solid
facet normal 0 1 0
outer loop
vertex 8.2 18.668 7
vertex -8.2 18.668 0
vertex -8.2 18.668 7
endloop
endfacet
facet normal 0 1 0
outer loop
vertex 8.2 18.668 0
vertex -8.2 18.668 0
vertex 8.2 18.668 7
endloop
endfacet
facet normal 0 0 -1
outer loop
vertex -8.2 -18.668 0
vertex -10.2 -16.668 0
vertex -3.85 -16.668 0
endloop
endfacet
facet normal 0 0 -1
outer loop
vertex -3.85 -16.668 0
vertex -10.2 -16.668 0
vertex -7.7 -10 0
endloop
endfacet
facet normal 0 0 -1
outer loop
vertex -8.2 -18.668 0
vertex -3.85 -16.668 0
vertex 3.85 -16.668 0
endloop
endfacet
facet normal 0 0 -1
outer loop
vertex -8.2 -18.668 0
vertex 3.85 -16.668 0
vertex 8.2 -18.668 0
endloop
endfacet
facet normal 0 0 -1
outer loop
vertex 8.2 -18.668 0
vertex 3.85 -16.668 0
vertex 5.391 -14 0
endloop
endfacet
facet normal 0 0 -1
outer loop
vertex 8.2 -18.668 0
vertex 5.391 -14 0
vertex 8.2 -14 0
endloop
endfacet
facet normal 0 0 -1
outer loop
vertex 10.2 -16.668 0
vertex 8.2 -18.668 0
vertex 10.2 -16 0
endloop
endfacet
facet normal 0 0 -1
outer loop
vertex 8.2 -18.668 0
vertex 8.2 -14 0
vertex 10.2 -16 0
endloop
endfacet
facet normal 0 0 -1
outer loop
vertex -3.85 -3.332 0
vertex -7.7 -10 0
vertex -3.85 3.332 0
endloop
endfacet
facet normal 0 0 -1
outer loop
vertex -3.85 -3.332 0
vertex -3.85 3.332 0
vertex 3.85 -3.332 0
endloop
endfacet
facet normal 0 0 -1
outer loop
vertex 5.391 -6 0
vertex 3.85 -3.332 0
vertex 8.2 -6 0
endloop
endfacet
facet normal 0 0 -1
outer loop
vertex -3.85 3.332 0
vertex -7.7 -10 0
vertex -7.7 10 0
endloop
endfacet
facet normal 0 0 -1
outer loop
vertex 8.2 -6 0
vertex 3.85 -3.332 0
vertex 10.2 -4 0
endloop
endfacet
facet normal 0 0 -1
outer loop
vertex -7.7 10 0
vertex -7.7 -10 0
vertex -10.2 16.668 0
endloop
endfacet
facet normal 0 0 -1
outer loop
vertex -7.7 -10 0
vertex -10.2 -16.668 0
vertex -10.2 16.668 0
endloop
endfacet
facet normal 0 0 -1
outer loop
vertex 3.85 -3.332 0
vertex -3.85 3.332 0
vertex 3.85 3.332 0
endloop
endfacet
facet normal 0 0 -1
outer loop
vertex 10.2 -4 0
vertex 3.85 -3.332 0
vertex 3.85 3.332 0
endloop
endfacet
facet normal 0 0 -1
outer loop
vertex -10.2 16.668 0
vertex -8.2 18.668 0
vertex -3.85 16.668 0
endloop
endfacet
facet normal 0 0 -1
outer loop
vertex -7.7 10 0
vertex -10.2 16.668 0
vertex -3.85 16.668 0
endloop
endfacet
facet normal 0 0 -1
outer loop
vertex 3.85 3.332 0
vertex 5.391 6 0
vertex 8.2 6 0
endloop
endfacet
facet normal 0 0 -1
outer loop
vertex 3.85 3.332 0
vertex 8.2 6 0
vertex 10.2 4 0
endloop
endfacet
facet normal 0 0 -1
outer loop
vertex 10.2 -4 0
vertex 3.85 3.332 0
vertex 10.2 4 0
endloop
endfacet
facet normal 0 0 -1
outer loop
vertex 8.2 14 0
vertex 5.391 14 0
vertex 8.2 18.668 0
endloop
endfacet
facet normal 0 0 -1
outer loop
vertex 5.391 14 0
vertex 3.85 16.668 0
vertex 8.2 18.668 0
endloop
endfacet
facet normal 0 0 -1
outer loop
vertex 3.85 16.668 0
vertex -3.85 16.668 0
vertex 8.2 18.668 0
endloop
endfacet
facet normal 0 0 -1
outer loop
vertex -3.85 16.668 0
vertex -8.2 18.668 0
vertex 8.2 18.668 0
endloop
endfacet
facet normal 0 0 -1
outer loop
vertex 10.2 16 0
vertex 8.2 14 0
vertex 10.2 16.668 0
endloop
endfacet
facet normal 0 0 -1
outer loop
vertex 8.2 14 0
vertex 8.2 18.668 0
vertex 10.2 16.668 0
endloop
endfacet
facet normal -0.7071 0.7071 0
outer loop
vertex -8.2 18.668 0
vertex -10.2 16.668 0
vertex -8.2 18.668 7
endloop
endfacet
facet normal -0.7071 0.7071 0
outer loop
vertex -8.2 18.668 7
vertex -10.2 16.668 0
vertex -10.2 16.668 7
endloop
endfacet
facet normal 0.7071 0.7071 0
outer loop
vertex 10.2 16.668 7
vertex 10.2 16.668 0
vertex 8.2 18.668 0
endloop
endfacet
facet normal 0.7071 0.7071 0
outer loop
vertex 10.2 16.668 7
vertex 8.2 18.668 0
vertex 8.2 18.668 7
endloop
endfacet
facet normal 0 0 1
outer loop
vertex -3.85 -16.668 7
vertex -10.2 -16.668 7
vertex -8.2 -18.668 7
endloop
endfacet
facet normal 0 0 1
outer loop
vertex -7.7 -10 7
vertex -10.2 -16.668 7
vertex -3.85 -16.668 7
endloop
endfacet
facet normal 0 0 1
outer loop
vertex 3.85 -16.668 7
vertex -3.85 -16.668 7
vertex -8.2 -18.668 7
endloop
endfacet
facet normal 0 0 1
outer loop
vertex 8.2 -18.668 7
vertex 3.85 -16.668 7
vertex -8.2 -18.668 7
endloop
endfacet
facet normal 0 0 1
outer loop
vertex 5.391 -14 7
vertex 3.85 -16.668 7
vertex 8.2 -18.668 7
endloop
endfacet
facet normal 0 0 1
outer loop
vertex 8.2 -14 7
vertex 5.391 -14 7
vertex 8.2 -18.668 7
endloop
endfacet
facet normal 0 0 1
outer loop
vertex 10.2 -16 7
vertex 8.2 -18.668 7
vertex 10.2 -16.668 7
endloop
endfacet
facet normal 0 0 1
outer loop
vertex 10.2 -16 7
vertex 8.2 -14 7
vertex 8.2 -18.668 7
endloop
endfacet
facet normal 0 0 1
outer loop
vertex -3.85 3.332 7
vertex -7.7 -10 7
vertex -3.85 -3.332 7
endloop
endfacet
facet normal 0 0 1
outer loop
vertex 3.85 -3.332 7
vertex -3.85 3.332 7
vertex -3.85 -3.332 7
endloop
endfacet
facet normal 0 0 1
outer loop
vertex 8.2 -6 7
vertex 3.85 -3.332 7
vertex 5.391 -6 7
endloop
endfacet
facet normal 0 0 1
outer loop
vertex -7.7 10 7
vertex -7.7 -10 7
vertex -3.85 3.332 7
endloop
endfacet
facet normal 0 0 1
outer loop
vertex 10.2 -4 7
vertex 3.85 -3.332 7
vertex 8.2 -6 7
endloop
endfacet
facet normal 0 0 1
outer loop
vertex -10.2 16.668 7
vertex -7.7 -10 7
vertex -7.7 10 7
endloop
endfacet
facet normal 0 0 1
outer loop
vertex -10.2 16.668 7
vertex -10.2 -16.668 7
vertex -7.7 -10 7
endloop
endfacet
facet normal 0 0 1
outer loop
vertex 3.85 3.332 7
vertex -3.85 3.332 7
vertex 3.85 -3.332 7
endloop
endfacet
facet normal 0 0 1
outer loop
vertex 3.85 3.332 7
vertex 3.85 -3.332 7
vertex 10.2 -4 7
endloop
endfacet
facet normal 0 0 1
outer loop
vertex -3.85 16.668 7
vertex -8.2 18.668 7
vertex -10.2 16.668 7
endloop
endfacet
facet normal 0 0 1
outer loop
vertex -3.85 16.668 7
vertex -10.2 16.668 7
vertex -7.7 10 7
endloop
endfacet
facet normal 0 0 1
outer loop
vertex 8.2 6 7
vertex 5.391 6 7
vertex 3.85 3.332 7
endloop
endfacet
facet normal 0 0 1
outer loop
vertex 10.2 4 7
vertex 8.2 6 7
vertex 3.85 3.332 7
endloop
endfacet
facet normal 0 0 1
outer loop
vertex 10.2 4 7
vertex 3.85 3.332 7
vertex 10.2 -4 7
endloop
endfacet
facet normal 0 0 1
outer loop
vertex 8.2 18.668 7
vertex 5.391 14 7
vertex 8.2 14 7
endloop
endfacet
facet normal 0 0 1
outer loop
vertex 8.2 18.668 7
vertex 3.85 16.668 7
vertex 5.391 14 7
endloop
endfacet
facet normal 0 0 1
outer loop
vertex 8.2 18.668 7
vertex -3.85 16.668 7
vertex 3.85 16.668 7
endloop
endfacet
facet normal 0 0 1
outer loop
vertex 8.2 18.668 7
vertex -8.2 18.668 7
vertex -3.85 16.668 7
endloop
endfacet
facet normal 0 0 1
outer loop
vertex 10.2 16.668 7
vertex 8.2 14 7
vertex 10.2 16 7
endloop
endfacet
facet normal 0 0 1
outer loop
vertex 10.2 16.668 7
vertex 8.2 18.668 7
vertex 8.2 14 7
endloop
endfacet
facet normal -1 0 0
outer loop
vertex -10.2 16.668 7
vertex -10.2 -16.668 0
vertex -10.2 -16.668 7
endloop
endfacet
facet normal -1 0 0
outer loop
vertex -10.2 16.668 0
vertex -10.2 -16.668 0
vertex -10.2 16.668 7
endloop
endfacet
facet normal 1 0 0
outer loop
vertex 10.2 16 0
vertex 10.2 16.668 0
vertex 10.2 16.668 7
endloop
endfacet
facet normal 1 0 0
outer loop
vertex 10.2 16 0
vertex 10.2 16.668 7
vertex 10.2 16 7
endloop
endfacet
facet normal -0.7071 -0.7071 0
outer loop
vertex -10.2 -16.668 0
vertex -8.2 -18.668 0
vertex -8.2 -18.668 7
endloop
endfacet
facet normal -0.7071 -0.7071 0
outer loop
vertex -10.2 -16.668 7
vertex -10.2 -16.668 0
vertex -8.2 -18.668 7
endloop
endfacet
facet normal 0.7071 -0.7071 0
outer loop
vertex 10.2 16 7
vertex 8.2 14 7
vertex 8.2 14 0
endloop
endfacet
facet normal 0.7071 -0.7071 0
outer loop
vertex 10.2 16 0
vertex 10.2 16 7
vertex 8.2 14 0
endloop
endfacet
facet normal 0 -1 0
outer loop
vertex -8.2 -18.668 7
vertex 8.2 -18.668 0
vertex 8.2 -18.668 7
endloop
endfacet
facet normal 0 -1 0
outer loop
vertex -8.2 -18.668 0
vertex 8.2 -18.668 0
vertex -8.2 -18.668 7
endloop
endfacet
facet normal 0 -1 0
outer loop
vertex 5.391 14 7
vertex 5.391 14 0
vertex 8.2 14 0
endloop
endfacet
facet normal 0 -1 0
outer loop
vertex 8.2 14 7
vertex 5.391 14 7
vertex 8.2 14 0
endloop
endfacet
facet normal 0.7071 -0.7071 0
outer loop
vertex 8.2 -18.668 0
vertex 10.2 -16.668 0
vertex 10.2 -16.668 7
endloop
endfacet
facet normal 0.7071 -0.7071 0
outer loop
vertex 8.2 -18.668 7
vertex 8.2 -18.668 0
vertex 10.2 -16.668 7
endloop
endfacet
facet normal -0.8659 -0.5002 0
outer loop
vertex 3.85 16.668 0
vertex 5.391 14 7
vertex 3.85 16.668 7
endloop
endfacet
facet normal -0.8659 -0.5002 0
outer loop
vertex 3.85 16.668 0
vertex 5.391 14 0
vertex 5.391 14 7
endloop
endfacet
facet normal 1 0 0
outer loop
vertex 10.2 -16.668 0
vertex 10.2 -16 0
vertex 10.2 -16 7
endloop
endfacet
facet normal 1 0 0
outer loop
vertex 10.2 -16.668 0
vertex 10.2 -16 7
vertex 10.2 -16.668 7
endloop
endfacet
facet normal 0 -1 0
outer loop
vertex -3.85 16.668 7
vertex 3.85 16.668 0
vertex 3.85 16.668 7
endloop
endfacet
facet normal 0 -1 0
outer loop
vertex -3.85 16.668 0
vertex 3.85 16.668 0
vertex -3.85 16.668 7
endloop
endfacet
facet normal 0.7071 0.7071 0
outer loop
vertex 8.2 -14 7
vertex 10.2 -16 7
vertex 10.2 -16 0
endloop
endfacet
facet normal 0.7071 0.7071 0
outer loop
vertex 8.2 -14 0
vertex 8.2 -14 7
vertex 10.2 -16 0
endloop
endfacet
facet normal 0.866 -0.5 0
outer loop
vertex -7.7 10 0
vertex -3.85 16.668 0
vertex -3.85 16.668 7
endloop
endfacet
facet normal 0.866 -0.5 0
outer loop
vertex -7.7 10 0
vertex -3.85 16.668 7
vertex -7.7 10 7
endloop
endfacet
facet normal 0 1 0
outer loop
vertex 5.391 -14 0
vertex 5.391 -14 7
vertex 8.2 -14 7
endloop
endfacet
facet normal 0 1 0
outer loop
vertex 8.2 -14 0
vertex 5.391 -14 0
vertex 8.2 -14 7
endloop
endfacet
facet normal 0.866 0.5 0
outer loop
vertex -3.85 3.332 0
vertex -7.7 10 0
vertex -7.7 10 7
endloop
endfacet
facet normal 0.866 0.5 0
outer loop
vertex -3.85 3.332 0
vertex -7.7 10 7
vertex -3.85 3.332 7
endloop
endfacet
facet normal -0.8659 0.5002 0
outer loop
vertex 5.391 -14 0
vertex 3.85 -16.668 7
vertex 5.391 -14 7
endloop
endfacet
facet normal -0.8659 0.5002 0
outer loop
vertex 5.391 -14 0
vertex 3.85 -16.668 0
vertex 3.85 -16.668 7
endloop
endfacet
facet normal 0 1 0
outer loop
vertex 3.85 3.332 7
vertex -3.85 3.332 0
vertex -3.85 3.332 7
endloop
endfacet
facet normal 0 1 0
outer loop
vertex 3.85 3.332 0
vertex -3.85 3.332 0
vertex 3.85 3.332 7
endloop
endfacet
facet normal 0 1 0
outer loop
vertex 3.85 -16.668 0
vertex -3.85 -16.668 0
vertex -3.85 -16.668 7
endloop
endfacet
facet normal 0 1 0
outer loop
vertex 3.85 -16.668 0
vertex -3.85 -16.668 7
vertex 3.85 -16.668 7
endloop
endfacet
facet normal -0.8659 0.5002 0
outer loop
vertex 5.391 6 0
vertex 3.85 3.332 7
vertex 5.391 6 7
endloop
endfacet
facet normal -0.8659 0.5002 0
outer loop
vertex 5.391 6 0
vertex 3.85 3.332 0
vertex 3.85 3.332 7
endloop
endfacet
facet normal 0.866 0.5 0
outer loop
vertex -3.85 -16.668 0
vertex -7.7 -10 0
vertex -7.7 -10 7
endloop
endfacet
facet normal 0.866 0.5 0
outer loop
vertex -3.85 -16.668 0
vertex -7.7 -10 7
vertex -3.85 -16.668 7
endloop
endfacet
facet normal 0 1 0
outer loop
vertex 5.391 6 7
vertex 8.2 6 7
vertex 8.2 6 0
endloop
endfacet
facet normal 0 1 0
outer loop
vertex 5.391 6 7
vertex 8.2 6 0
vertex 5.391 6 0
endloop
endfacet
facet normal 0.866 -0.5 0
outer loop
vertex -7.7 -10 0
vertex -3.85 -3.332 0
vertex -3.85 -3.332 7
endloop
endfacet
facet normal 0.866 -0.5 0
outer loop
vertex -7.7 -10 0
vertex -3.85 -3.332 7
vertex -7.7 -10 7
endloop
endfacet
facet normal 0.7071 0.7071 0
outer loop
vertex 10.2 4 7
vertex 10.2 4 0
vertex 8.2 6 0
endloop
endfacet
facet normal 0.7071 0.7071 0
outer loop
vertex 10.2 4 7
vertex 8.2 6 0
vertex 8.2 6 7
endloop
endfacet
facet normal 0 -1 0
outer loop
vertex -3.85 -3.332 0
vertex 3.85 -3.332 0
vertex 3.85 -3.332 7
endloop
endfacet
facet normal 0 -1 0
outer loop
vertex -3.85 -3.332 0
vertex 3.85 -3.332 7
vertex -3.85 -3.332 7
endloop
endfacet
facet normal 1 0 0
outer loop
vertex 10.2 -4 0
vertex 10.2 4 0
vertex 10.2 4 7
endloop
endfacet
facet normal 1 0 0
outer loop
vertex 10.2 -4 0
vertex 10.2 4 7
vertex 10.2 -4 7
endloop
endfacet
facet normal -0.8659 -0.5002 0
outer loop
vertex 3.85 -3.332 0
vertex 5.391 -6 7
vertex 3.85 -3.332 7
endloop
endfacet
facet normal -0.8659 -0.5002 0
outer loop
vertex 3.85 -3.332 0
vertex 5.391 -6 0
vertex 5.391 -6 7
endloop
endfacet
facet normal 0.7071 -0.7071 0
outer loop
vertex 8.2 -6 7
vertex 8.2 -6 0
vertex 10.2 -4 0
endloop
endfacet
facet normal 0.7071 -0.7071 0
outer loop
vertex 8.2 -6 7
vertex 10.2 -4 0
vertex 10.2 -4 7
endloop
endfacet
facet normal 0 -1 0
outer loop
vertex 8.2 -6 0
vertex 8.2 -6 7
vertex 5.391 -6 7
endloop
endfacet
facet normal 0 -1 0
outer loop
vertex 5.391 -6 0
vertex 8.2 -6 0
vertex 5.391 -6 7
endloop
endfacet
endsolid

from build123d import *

# Parameters (mm, degrees)
SKETCH_W     = 20.4
SKETCH_H     = 37.336792
PAD_DEPTH    = 7
SKETCH001_W  = 8
SKETCH001_H  = 8
POCKET_DEPTH = 7
CHAMFER_SIZE = 2


with BuildPart() as part:
    # Sketch → Pad (new body)
    with BuildSketch(Plane.XY):
        Rectangle(SKETCH_W, SKETCH_H)
        Polygon((3.85, 3.331604), (7.7, 10), (3.85, 16.668396), (-3.85, 16.668396), (-7.7, 10), (-3.85, 3.331604), align=None, mode=Mode.SUBTRACT)
        Polygon((3.85, -3.331604), (-3.85, -3.331604), (-7.7, -10), (-3.85, -16.668396), (3.85, -16.668396), (7.7, -10), align=None, mode=Mode.SUBTRACT)
    extrude(amount=PAD_DEPTH)

    # Sketch001 → Pocket (cut)
    with BuildSketch(Plane.XY.offset(7)):
        with Locations((7.7, 10)):
            Rectangle(SKETCH001_W, SKETCH001_H)
    pocket = extrude(amount=-POCKET_DEPTH, mode=Mode.SUBTRACT)

    # Mirrored: Pocket across Sketch001 H_Axis
    add(pocket.mirror(Plane(origin=(0, 0, 7), x_dir=(0, 0, 1), z_dir=(0, 1, 0))), mode=Mode.SUBTRACT)

    # Chamfer
    chamfer_edges = [part.edges().sort_by_distance(p)[0] for p in [
        (-10.2, 18.668396, 3.5),
        (10.2, 18.668396, 3.5),
        (-10.2, -18.668396, 3.5),
        (10.2, 14, 3.5),
        (10.2, -18.668396, 3.5),
        (10.2, 6, 3.5),
        (10.2, -6, 3.5),
        (10.2, -14, 3.5),
    ]]
    chamfer(chamfer_edges, length=CHAMFER_SIZE)


solid = part.part
